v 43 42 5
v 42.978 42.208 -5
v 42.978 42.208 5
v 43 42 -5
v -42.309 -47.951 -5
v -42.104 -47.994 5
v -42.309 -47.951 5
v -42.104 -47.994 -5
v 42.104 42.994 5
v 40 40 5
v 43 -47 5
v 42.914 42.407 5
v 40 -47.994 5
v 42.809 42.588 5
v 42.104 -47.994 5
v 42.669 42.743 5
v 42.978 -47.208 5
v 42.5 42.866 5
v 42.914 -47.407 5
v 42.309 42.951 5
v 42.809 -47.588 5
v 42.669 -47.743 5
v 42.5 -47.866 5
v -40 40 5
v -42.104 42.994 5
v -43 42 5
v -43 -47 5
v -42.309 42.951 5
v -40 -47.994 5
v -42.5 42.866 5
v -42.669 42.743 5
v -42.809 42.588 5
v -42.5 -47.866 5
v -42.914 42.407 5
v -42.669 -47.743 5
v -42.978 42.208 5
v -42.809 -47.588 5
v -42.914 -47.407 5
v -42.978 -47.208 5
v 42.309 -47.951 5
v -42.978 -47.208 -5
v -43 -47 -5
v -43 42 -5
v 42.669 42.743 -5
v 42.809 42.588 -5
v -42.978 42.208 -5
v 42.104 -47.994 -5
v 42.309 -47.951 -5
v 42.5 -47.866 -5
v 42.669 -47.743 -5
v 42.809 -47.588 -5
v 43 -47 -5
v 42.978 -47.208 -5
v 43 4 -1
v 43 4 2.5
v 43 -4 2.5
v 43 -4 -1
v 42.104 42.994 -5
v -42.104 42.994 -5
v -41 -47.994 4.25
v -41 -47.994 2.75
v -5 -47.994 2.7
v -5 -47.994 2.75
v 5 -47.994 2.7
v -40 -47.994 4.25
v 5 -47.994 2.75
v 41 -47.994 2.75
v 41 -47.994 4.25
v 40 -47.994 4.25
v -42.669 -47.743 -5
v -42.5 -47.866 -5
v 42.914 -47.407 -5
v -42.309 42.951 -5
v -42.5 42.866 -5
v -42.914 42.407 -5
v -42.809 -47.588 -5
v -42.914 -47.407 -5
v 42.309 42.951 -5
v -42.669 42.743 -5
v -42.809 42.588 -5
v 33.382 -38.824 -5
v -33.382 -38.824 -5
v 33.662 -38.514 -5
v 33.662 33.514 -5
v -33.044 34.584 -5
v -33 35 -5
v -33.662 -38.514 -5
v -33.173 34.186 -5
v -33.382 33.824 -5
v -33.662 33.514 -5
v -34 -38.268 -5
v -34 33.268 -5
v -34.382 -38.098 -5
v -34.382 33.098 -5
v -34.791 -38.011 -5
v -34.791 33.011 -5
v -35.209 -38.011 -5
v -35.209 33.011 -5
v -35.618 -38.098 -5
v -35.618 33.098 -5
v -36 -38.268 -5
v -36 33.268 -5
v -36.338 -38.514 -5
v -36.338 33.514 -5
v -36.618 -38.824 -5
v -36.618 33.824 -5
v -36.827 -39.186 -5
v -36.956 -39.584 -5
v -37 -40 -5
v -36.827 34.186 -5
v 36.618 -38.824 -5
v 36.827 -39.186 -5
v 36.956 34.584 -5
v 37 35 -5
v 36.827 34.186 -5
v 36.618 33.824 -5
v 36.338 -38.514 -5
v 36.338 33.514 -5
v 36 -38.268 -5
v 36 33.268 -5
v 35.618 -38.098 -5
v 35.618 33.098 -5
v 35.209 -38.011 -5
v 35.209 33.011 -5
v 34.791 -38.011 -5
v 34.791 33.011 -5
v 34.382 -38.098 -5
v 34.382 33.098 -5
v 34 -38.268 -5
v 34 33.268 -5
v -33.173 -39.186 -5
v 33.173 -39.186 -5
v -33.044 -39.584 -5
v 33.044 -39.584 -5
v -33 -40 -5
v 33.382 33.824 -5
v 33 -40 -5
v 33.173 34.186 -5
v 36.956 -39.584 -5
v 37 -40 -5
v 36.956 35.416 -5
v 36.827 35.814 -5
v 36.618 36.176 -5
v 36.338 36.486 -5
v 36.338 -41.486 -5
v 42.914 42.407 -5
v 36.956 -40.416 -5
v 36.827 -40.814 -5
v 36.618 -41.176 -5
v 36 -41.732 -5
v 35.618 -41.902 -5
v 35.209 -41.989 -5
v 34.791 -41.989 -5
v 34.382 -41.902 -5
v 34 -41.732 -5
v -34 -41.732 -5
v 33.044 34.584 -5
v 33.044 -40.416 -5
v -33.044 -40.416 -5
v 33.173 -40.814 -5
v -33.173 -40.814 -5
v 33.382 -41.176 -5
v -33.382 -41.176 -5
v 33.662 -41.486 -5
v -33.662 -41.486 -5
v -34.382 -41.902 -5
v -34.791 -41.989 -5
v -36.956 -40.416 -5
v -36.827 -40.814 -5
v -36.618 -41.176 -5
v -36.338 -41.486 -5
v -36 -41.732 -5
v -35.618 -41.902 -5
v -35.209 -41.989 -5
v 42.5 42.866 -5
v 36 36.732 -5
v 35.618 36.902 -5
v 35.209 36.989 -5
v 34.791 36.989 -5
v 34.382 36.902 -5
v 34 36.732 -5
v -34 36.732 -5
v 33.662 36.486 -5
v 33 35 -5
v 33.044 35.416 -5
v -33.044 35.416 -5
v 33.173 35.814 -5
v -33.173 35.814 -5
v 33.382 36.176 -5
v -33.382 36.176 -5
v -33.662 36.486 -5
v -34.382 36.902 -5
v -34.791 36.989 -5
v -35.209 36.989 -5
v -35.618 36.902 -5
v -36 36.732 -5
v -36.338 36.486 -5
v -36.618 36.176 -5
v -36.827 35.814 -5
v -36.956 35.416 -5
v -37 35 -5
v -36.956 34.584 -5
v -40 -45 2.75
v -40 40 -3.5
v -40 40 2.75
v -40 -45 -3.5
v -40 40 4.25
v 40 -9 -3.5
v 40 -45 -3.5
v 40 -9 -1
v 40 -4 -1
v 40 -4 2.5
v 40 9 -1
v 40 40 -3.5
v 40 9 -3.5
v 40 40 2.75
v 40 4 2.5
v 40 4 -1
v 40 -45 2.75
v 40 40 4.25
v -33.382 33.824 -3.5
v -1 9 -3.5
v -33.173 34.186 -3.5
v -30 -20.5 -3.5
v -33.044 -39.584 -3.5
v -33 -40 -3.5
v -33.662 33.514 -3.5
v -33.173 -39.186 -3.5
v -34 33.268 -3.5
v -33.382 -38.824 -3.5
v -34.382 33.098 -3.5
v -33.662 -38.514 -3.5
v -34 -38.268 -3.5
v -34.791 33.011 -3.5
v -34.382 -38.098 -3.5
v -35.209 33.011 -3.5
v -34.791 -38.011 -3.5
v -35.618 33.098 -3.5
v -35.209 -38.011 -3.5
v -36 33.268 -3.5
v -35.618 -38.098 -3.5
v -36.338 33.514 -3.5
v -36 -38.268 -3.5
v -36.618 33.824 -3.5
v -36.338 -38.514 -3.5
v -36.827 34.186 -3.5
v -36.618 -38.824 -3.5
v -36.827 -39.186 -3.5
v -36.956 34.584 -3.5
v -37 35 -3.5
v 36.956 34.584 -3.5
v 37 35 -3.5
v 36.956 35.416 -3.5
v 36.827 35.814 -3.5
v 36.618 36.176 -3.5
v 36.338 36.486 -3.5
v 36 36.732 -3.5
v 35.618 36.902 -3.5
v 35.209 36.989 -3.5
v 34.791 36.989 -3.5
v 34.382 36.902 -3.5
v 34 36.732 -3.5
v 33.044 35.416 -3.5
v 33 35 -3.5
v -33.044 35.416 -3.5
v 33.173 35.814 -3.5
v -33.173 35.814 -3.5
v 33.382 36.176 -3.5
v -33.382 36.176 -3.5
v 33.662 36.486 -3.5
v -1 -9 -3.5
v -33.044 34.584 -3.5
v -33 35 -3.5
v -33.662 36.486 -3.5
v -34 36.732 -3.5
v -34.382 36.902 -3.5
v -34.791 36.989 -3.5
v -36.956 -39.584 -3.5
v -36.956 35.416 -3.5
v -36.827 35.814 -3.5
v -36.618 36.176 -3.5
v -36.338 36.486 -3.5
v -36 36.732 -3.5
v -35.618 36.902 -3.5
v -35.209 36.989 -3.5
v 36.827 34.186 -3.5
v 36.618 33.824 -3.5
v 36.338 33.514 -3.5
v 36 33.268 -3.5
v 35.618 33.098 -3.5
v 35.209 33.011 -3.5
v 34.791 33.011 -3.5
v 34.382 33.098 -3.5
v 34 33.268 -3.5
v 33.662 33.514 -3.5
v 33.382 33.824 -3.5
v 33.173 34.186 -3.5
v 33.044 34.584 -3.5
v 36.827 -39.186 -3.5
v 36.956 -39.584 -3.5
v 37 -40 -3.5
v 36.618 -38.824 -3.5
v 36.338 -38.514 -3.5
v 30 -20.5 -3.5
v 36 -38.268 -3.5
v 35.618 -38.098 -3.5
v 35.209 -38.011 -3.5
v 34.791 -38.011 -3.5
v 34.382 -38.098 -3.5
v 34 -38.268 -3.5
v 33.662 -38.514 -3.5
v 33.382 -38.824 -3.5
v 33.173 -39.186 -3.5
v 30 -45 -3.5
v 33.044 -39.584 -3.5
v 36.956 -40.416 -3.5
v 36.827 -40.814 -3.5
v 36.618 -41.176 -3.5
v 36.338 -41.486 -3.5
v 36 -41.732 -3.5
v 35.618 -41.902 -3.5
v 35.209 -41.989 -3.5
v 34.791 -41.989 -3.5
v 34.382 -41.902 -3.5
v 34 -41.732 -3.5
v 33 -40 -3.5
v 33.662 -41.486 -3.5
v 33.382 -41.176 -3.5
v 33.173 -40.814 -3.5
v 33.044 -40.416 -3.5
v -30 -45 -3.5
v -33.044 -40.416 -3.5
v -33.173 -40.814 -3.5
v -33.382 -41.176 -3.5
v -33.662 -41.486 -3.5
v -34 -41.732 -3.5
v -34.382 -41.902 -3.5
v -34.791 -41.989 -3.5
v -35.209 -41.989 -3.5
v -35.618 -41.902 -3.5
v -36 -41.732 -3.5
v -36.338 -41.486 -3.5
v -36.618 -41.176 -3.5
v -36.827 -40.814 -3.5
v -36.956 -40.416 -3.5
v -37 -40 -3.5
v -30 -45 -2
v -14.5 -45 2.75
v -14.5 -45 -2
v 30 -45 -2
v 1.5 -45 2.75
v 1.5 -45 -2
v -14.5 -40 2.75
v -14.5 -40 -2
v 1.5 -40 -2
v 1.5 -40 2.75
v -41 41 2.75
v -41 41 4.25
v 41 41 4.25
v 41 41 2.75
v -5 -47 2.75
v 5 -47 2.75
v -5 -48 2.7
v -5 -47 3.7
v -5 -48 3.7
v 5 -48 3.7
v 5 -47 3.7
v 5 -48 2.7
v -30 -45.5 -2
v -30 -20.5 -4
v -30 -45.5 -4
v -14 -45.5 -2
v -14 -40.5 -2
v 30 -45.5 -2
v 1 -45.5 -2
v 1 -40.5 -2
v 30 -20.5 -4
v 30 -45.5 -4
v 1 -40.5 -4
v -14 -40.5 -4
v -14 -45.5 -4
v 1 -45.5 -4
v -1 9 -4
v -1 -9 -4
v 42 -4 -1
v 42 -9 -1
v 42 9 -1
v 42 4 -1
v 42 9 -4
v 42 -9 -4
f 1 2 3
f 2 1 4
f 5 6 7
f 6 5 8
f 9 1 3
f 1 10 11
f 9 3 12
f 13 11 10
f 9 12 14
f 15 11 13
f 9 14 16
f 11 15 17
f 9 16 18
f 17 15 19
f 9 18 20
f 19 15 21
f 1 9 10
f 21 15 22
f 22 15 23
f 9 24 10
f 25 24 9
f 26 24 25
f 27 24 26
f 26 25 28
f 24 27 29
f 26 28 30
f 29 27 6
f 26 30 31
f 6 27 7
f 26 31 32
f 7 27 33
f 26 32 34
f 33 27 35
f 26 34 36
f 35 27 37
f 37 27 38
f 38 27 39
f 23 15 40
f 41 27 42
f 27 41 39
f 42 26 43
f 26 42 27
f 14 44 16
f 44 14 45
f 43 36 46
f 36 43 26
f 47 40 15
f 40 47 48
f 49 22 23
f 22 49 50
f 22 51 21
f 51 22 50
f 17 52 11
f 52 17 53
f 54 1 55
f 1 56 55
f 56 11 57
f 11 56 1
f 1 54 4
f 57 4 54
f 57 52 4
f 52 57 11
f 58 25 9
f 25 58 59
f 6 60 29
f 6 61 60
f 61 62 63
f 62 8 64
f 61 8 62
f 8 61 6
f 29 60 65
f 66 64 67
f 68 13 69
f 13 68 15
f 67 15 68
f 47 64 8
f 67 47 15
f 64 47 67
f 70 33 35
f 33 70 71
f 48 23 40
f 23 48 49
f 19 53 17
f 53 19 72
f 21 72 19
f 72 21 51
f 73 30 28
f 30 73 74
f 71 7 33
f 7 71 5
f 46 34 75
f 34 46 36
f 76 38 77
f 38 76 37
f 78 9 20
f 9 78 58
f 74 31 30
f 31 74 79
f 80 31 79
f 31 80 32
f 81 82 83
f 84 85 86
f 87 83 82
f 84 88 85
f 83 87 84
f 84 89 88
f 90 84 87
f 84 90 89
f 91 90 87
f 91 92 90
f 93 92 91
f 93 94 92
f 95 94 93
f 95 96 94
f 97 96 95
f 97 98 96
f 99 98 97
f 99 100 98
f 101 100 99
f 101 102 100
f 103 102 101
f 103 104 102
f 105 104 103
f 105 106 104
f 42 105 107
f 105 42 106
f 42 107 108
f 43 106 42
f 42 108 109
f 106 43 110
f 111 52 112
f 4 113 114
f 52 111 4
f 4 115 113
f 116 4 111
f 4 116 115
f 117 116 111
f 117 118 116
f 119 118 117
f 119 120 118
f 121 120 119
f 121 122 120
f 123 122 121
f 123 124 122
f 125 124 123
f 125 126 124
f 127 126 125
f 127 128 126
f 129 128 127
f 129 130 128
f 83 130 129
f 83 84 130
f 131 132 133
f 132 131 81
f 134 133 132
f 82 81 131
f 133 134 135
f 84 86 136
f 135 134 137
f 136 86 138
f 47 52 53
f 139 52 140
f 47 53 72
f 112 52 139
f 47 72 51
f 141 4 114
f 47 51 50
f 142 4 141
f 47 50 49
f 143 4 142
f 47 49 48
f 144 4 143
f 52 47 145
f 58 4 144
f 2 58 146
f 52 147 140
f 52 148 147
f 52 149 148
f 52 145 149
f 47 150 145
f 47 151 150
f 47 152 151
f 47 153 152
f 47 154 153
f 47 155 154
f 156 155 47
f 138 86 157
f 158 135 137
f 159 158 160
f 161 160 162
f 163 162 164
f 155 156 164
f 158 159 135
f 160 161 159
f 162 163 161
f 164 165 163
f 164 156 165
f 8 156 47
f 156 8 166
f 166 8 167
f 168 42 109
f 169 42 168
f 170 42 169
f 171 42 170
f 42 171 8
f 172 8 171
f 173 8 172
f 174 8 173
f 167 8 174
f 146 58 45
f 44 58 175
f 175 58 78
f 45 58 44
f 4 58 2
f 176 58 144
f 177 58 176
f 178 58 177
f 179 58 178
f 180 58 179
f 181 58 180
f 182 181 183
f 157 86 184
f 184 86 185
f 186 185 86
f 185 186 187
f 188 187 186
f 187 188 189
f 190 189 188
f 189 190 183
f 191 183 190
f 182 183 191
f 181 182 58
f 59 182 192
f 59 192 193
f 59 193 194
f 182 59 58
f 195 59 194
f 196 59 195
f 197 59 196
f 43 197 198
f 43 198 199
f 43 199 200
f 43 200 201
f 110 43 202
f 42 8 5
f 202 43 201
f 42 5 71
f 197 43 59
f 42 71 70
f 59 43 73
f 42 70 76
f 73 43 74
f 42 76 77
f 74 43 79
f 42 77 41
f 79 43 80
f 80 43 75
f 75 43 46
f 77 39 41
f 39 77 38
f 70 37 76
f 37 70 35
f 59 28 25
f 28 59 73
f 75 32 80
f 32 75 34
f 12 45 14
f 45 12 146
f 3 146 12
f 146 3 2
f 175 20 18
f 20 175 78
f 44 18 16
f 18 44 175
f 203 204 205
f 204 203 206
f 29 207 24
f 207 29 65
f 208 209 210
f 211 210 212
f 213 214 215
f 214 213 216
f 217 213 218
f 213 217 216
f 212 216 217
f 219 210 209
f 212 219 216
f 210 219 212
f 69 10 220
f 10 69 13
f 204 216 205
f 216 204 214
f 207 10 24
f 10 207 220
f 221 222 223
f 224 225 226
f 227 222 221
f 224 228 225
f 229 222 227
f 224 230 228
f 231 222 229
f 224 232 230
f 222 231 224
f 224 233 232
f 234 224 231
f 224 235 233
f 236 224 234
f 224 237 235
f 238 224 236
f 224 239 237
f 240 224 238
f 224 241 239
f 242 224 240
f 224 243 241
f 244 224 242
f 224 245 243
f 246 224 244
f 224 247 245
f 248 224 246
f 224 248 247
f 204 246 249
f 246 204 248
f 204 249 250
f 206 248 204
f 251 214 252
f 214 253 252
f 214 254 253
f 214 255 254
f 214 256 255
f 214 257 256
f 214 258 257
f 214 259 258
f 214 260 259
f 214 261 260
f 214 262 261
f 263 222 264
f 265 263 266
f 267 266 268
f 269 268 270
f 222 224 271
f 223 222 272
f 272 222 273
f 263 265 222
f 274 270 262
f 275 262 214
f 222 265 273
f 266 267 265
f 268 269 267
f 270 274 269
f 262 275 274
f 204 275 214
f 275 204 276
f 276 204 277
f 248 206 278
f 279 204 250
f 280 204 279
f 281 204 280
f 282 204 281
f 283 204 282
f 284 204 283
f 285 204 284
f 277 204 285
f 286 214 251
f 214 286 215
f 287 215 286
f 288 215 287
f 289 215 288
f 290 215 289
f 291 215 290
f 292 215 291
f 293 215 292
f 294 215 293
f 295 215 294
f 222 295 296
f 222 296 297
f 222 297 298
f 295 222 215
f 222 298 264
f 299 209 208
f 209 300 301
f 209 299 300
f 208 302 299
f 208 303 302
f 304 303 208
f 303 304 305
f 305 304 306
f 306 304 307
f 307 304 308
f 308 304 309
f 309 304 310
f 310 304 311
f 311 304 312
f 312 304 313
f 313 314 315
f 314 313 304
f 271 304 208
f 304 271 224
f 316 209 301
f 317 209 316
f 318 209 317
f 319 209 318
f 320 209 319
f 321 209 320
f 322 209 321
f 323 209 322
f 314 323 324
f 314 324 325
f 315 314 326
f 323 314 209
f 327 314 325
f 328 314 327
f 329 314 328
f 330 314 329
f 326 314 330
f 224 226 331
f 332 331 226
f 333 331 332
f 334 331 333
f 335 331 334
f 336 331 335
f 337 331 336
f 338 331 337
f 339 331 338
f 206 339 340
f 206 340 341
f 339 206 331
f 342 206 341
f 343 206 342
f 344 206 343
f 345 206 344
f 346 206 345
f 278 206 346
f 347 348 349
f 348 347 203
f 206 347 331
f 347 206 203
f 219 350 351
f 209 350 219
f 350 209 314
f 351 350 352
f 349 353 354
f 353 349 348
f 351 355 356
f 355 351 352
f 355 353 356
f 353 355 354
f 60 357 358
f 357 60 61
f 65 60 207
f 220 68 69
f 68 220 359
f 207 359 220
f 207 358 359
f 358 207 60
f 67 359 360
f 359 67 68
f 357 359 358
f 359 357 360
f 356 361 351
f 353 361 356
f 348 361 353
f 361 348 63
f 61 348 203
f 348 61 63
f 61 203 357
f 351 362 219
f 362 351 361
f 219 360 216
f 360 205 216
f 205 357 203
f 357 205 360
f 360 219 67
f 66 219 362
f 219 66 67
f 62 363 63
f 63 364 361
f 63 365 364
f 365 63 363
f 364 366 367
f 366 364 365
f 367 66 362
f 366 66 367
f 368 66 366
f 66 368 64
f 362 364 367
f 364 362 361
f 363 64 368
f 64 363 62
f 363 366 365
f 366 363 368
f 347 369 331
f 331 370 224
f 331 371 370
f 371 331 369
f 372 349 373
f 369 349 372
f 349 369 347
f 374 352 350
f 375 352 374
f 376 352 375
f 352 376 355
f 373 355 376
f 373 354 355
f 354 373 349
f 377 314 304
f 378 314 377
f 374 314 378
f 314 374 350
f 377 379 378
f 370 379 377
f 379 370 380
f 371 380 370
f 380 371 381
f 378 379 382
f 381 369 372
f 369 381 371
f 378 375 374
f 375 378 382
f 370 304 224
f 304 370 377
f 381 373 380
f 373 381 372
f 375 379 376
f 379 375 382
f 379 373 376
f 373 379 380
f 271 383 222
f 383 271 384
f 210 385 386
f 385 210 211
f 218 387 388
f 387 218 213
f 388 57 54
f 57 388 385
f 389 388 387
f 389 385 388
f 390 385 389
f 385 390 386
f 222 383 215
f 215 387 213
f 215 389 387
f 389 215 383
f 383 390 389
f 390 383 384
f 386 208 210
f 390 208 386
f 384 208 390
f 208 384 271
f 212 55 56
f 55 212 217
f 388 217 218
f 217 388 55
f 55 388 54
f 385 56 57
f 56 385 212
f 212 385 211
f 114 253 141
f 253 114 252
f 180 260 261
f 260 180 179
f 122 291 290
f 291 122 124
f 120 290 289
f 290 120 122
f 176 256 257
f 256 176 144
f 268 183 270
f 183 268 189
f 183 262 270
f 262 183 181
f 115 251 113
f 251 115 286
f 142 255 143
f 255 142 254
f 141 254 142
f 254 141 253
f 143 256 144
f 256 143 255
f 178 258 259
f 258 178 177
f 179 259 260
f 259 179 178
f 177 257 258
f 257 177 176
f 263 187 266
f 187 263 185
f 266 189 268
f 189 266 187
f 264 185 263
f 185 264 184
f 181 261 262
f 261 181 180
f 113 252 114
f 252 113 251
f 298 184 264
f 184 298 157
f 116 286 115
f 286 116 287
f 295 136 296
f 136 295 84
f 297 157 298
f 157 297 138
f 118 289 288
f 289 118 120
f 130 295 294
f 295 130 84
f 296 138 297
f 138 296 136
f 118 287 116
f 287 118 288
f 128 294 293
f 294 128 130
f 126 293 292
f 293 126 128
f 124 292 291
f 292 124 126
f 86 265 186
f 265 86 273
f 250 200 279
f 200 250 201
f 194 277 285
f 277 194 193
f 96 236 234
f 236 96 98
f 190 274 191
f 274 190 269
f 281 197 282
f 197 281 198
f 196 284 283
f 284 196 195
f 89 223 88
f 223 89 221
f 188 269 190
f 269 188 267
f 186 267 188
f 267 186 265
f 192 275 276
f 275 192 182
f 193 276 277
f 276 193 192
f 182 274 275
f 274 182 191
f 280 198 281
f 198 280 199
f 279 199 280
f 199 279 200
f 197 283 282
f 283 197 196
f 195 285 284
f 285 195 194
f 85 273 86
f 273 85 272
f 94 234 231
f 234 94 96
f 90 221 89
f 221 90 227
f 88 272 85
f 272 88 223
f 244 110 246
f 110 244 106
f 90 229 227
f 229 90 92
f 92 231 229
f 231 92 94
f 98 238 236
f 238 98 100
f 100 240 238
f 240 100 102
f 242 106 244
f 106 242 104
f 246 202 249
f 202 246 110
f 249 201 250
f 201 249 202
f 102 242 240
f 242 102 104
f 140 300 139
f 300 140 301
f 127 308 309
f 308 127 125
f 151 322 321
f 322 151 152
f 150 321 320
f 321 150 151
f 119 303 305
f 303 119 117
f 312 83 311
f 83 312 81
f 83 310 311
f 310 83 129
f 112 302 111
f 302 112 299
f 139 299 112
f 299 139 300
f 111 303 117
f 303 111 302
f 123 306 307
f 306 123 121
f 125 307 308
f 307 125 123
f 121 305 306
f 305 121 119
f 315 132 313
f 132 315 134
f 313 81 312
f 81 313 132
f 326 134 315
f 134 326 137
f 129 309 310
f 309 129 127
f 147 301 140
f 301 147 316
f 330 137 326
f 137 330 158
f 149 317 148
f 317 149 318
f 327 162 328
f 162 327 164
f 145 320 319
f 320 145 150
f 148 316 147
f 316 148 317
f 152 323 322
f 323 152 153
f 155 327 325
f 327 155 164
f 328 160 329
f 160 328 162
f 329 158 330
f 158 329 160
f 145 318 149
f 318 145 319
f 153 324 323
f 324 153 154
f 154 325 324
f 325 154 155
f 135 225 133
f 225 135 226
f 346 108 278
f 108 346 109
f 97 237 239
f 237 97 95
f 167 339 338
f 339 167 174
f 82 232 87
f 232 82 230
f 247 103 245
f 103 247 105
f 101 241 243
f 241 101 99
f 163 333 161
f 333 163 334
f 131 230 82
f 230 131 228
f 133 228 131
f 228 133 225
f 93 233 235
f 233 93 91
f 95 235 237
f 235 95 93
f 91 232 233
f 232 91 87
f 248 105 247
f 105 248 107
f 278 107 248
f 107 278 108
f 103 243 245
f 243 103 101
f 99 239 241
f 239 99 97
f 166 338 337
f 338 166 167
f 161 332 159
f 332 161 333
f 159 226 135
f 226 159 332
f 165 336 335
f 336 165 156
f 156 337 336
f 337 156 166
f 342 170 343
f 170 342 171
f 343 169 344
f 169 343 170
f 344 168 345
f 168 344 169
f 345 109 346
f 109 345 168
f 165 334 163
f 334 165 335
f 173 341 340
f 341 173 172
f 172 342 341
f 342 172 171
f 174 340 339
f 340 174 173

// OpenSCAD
// Higher definition curves
$fs = 0.01;

module roundedcube(size = [1, 1, 1], center = false, radius = 0.5, apply_to = "all") {
	// If single value, convert to [x, y, z] vector
	size = (size[0] == undef) ? [size, size, size] : size;

	translate_min = radius;
	translate_xmax = size[0] - radius;
	translate_ymax = size[1] - radius;
	translate_zmax = size[2] - radius;

	diameter = radius * 2;

	module build_point(type = "sphere", rotate = [0, 0, 0]) {
		if (type == "sphere") {
			sphere(r = radius);
		} else if (type == "cylinder") {
			rotate(a = rotate)
			cylinder(h = diameter, r = radius, center = true);
		}
	}

	obj_translate = (center == false) ?
		[0, 0, 0] : [
			-(size[0] / 2),
			-(size[1] / 2),
			-(size[2] / 2)
		];

	translate(v = obj_translate) {
		hull() {
			for (translate_x = [translate_min, translate_xmax]) {
				x_at = (translate_x == translate_min) ? "min" : "max";
				for (translate_y = [translate_min, translate_ymax]) {
					y_at = (translate_y == translate_min) ? "min" : "max";
					for (translate_z = [translate_min, translate_zmax]) {
						z_at = (translate_z == translate_min) ? "min" : "max";

						translate(v = [translate_x, translate_y, translate_z])
						if (
							(apply_to == "all") ||
							(apply_to == "xmin" && x_at == "min") || (apply_to == "xmax" && x_at == "max") ||
							(apply_to == "ymin" && y_at == "min") || (apply_to == "ymax" && y_at == "max") ||
							(apply_to == "zmin" && z_at == "min") || (apply_to == "zmax" && z_at == "max")
						) {
							build_point("sphere");
						} else {
							rotate = 
								(apply_to == "xmin" || apply_to == "xmax" || apply_to == "x") ? [0, 90, 0] : (
								(apply_to == "ymin" || apply_to == "ymax" || apply_to == "y") ? [90, 90, 0] :
								[0, 0, 0]
							);
							build_point("cylinder", rotate);
						}
					}
				}
			}
		}
	}
}



matrix_width=80;
case_height=10;
case_width=86;
case_length=86;
down_bar=5;

difference() {
// Main case
union() {
    difference() {
        difference() {
            union() {
                difference() {
                    translate([0, -down_bar/2, 0]) { roundedcube([case_width, case_length+down_bar, case_height], true, 1, "z"); }
                    translate([0, -down_bar/2, 1.5]) { cube([80, 85, case_height], true); } // inside box
                }
                translate([-14.5, -45, -3.5]) { cube([16,5,case_height-3.5]); }      // pestana botones
            }
            translate([0,-4, (case_height/2) - 1.5]) { cube([82, 90, 1.5], true); }  // Transparent plexy rail
            
        }
        translate([-40, -48, 4]) { cube([80, 4, 4]); } // Down bar 
    }
    translate([-5, -48, 2.7]) { cube([10, 1, 1]); }     // Plexi holder
    
}

    // bikepixels board guide
    translate([-30, -45.5, -4] ) {
        difference() {
        color("green") cube([60, 25, 2]);
        translate([16, -1,-0.5]) { cube([15, 6, 3]); }
        }
    }
    // Holes for cloth pins
    translate([35, 35, -10]) { cylinder(case_height*2, 2, 2); }
    translate([-35, 35, -10]) { cylinder(case_height*2, 2, 2); }
    translate([35, -40, -10]) { cylinder(case_height*2, 2, 2); }
    translate([-35, -40, -10]) { cylinder(case_height*2, 2, 2); }   
    

    translate([-1, -9, -4]) {
        union() {
            color("green") cube([43, 18, 3]);
            translate([44-9, 5, 3]) { color("gray") cube([10, 8, 3.5]); }
        }
    }
}
